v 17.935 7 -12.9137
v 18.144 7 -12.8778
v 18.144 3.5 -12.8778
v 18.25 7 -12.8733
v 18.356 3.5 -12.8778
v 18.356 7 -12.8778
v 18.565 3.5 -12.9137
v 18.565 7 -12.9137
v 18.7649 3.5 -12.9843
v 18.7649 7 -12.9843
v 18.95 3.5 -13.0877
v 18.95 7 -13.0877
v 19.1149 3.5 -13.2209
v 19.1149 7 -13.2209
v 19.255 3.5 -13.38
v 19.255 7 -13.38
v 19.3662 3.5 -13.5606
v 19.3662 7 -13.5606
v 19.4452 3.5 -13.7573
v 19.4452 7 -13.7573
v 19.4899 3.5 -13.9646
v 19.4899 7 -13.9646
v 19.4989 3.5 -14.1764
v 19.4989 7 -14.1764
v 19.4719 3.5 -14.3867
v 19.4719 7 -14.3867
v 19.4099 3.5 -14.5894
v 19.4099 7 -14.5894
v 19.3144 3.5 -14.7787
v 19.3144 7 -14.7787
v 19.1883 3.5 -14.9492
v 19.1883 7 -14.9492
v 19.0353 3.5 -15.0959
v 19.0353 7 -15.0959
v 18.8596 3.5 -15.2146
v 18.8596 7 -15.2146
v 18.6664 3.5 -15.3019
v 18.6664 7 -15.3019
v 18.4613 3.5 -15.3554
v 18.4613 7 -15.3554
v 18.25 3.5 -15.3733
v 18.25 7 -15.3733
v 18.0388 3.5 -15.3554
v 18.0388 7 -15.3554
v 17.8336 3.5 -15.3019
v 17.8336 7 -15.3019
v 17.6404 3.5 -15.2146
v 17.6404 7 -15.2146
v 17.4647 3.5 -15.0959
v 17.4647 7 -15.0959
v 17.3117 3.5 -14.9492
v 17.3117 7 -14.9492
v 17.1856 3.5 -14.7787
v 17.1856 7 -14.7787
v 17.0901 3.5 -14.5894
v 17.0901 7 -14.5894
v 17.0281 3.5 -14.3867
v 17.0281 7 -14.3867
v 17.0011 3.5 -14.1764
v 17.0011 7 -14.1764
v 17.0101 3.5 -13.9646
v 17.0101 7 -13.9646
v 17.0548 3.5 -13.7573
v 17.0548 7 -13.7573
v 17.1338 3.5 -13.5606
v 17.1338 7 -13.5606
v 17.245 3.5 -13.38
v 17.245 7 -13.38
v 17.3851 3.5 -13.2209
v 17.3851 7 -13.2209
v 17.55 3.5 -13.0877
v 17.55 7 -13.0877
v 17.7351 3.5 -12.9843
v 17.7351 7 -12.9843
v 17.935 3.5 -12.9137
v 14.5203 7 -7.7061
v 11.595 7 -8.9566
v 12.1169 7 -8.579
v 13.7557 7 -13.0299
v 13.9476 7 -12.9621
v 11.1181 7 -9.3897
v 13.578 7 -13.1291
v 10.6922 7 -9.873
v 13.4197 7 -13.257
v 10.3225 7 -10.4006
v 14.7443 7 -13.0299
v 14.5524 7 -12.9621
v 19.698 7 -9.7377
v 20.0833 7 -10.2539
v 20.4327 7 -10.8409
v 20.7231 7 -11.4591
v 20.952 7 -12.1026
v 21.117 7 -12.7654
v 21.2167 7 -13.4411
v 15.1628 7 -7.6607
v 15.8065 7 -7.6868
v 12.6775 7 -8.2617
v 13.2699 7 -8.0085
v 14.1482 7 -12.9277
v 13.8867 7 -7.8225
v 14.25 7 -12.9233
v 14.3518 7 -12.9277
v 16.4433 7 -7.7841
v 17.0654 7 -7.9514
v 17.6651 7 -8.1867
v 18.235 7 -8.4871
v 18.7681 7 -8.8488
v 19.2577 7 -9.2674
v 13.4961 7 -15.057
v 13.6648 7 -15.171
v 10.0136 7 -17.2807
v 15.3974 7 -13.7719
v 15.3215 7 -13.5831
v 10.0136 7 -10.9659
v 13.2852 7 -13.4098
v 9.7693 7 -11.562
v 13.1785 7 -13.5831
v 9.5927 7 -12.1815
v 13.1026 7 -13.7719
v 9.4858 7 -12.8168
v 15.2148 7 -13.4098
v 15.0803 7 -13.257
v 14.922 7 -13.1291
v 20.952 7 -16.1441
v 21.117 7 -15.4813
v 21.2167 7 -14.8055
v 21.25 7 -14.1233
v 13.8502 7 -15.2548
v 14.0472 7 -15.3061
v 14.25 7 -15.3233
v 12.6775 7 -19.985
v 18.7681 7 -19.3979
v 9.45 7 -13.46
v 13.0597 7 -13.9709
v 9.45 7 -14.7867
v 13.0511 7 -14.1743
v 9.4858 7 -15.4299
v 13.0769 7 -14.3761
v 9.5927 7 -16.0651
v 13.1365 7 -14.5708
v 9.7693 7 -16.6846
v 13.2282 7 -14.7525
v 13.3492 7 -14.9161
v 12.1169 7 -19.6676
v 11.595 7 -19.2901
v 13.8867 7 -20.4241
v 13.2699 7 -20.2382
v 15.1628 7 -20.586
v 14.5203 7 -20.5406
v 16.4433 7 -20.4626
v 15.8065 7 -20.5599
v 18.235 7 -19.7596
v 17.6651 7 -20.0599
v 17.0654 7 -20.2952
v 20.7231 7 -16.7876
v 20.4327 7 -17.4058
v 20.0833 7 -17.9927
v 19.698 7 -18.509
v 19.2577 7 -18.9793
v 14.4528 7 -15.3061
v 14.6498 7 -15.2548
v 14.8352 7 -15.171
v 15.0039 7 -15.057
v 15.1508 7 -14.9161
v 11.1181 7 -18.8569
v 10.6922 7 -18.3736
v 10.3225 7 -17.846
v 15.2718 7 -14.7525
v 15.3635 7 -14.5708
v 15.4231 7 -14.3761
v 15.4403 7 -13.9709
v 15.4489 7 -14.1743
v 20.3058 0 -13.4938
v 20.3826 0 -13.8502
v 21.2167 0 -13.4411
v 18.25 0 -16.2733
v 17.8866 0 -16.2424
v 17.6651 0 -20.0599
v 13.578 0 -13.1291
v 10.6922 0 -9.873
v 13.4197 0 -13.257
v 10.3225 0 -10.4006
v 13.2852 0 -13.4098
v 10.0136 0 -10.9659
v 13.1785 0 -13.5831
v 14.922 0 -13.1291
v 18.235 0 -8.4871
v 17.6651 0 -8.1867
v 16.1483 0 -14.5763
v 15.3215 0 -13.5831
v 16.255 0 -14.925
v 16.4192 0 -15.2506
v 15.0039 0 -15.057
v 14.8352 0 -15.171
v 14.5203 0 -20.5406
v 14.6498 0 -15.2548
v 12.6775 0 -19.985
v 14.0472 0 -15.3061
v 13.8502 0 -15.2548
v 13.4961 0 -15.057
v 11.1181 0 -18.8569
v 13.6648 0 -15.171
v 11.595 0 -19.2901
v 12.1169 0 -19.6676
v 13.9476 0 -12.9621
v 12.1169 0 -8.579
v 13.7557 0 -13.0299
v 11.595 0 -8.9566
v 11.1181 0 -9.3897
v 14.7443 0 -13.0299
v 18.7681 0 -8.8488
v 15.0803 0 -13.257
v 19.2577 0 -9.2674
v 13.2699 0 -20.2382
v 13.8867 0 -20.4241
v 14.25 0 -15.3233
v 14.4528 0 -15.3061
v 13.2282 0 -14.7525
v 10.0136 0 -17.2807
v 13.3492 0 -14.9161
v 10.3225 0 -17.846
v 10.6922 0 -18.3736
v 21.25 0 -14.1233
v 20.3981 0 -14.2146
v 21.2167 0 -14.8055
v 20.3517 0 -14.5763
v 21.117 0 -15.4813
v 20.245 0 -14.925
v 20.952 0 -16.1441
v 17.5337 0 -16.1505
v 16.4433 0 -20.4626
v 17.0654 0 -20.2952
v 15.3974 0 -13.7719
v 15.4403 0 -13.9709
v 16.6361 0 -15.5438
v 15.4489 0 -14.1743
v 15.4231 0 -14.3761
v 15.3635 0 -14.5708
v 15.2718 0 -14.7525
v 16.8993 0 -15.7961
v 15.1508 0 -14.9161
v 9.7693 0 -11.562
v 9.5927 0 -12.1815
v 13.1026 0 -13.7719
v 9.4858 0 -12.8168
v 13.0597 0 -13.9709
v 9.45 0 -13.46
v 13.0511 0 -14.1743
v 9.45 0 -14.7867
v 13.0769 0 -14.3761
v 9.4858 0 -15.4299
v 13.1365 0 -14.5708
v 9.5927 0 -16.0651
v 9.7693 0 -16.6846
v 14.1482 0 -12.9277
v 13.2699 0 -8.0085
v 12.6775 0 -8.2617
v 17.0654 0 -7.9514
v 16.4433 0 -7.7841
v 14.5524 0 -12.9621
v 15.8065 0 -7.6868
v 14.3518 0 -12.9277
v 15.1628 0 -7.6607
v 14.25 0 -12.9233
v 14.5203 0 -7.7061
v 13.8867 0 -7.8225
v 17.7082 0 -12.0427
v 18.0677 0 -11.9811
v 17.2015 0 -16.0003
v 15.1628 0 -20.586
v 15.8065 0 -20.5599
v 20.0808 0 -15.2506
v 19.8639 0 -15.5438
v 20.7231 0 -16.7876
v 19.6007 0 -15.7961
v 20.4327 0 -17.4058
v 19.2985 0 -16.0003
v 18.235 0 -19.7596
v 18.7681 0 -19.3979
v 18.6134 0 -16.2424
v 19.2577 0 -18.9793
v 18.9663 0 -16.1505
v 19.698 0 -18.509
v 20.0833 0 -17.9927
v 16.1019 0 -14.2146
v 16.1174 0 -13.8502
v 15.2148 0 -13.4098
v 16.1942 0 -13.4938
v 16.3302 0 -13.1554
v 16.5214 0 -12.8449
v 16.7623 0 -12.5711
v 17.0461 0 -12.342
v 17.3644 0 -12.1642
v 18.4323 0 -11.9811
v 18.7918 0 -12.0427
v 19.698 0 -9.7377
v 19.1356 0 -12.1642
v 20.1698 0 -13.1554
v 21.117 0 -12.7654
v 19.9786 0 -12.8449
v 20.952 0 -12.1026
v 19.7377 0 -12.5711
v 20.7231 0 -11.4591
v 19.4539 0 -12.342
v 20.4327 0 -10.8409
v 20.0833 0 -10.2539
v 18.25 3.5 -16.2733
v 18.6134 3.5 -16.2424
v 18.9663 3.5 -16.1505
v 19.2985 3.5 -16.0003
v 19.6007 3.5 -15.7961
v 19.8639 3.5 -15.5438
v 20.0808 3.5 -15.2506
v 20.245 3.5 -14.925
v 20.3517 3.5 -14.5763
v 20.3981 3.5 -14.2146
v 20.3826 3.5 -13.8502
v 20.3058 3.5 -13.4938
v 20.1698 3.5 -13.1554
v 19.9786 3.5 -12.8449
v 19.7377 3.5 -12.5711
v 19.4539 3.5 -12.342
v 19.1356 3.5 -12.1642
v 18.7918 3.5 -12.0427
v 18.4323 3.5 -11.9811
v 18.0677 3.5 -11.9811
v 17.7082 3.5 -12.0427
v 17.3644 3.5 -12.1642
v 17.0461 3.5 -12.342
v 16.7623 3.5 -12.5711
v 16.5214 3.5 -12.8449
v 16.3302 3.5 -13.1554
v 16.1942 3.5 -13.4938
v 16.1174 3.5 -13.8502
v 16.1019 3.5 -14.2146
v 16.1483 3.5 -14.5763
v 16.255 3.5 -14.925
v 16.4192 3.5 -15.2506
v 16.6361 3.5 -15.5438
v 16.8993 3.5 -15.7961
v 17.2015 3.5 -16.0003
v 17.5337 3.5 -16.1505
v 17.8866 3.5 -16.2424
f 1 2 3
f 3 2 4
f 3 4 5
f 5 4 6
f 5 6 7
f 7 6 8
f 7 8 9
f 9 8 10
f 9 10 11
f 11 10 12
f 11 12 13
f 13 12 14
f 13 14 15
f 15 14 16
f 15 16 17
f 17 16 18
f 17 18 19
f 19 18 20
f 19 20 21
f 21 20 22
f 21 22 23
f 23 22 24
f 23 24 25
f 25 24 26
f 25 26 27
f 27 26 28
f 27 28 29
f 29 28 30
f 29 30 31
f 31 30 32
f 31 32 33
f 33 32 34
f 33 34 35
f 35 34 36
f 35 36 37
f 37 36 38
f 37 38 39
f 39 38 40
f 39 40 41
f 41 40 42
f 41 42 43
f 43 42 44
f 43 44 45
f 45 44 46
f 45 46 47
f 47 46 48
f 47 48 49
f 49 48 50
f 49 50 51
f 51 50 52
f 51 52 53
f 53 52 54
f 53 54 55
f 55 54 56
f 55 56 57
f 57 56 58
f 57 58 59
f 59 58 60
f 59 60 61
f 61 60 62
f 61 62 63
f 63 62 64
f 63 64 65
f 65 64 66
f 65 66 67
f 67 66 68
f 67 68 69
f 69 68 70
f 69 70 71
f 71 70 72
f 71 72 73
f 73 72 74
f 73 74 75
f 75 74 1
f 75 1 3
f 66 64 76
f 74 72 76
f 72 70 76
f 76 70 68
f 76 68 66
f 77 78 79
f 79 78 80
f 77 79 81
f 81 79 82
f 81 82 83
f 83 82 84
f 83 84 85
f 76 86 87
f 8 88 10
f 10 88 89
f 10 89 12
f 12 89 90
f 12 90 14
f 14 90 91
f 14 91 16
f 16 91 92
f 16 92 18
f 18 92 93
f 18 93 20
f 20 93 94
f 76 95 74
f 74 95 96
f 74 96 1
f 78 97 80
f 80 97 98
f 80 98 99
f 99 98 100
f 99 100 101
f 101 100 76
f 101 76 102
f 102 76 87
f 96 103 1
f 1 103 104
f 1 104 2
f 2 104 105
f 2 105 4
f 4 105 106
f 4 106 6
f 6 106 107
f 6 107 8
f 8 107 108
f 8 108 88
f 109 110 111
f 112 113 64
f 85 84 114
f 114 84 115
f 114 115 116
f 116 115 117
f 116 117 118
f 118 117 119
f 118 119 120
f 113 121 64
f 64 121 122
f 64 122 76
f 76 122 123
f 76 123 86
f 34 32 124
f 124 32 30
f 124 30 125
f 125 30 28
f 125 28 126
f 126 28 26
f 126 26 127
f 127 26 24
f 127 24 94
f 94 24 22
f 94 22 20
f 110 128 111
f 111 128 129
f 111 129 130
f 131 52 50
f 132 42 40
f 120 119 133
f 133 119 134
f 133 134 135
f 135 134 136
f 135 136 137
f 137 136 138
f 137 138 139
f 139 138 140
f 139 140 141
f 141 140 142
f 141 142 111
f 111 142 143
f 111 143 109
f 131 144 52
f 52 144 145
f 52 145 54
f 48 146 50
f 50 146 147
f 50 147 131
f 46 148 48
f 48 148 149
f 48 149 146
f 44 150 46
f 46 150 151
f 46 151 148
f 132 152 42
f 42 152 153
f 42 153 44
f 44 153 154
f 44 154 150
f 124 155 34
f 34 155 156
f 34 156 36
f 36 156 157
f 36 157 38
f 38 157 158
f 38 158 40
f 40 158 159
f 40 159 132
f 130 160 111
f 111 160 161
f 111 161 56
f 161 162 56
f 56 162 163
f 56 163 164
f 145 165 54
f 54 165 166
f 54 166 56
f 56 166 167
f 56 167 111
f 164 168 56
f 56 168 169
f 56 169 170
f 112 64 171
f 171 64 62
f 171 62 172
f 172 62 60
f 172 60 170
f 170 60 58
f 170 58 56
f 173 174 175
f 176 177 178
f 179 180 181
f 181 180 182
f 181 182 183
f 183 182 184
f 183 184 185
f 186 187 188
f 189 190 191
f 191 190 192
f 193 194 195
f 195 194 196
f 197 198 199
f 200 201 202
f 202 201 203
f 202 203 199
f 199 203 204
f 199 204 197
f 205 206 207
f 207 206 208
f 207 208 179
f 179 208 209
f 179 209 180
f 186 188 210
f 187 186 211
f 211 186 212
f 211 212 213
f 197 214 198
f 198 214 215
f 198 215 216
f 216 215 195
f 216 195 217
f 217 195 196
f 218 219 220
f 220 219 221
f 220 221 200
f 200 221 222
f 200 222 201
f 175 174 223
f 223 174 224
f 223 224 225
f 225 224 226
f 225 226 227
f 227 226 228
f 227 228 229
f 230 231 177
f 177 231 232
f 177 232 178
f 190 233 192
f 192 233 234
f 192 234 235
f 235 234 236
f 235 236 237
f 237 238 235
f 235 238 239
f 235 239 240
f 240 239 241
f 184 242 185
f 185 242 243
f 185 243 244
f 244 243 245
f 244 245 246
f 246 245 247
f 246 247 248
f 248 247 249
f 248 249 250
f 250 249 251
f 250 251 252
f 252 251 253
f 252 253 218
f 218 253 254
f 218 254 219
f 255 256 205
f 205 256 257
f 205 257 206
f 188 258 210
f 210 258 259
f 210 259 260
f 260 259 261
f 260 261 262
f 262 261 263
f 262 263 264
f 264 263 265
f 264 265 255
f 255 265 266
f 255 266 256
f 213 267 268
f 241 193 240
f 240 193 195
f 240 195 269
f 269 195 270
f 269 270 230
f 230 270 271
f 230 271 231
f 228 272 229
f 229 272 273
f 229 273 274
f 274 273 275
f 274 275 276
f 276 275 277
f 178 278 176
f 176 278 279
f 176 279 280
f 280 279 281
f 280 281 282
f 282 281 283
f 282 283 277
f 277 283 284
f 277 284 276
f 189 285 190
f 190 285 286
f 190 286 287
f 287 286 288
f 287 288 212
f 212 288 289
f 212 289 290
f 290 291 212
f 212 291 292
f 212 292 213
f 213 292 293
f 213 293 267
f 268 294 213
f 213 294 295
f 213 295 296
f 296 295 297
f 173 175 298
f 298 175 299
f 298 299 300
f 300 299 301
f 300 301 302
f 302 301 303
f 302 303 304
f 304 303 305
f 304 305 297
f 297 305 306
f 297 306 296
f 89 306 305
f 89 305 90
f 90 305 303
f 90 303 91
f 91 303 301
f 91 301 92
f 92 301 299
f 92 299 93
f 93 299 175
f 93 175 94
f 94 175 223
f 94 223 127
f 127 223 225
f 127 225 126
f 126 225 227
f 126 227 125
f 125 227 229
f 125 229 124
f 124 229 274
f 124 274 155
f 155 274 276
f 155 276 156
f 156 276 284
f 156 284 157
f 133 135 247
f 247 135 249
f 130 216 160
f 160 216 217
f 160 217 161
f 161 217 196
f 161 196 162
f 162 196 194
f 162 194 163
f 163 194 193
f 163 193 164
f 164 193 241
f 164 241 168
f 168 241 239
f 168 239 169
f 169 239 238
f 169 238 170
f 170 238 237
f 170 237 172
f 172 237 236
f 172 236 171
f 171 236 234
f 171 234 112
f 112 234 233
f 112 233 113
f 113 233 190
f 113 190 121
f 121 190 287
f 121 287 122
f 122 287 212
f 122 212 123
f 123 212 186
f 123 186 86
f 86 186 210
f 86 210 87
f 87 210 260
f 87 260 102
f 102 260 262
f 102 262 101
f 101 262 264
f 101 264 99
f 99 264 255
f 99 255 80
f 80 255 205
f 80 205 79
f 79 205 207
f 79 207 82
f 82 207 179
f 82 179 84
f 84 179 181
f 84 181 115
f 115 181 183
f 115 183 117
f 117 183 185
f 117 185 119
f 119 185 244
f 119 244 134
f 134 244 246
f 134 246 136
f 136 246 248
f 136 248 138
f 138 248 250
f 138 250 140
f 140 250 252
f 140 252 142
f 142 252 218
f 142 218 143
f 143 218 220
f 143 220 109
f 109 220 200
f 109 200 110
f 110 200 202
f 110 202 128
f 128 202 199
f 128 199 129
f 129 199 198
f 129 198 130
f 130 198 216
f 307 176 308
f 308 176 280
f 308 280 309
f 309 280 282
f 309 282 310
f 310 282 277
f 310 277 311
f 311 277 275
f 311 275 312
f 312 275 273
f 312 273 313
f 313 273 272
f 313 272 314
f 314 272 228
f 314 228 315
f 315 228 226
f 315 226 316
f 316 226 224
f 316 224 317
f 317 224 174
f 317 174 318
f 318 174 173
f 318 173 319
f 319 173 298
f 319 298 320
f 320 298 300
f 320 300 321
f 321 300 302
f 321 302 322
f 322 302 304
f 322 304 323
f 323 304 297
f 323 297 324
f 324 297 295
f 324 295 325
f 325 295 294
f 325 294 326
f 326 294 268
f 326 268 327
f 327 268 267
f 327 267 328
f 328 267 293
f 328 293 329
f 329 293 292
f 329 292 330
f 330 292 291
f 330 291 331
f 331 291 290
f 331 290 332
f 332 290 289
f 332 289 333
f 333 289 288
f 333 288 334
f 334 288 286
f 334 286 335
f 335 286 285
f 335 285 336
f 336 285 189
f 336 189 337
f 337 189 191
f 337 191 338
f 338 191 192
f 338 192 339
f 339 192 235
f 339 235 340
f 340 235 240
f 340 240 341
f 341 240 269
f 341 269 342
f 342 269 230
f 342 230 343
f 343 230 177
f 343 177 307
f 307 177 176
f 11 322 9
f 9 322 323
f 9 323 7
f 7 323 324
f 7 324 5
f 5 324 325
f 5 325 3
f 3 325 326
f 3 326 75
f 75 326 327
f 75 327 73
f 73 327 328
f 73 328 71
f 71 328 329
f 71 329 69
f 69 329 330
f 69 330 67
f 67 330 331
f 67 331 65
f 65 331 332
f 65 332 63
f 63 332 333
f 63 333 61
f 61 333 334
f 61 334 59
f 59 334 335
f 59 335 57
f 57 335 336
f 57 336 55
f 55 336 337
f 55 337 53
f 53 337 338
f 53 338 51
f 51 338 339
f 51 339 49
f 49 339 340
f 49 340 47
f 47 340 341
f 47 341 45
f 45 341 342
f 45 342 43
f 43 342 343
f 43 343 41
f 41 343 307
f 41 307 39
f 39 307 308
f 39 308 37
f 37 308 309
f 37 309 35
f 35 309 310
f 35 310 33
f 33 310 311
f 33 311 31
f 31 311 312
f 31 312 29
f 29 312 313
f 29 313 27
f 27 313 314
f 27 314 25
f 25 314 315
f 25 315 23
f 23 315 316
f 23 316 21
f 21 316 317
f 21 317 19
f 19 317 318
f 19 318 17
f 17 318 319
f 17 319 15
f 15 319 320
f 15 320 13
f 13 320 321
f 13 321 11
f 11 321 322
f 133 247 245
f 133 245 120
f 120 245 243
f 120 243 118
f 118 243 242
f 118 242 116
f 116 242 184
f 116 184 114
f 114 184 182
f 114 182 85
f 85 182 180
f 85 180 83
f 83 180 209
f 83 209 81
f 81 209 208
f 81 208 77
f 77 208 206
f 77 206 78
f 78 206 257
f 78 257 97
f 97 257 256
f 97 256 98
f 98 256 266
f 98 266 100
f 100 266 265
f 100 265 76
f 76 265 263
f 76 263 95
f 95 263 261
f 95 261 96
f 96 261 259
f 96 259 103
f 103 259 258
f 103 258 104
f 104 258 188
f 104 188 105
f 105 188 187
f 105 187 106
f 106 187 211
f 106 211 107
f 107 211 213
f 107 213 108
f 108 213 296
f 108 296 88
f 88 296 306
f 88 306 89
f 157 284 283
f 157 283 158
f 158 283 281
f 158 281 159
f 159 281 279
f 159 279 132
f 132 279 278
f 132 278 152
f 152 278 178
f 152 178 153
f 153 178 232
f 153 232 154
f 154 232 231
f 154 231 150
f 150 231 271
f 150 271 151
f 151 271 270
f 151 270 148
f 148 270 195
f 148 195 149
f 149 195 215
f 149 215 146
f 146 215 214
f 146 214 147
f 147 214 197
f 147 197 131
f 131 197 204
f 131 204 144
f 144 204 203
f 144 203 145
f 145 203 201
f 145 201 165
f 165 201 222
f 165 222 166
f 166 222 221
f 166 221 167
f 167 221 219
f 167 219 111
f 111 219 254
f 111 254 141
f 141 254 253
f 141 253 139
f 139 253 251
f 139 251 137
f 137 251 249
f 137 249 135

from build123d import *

# Parameters (mm, degrees)
SKETCH1_R           = 1.2
SKETCH1_R_2         = 1.25
BOSS_EXTRUDE1_DEPTH = 7
SKETCH3_R           = 2.15
CUT_EXTRUDE3_DEPTH  = 3.5
FILLET1_R           = 5.8


with BuildPart() as part:
    # Sketch1 → Boss-Extrude1 (new body)
    with BuildSketch(Plane(origin=(0, 0, 0), x_dir=(1, 0, 0), z_dir=(0, 1, 0))):
        with BuildLine():
            Line((9.45, 19.218429014), (9.45, 9.028237652))
            ThreePointArc((9.45, 9.028237652), (21.25, 14.123333333), (9.45, 19.218429014))
        make_face()
        with Locations((14.25, 14.123333333)):
            Circle(SKETCH1_R, mode=Mode.SUBTRACT)
        with Locations((18.25, 14.123333333)):
            Circle(SKETCH1_R_2, mode=Mode.SUBTRACT)
    extrude(amount=BOSS_EXTRUDE1_DEPTH)

    # Sketch3 → Cut-Extrude3 (cut)
    with BuildSketch(Plane.XZ):
        with Locations((18.25, -14.123333333)):
            Circle(SKETCH3_R)
    extrude(amount=-CUT_EXTRUDE3_DEPTH, mode=Mode.SUBTRACT)

    # Fillet1
    fillet1_edges = [part.edges().sort_by_distance(p)[0] for p in [
        (9.45, 3.5, -9.028237652),
        (9.45, 3.5, -19.218429014),
    ]]
    fillet(fillet1_edges, radius=FILLET1_R)


solid = part.part
